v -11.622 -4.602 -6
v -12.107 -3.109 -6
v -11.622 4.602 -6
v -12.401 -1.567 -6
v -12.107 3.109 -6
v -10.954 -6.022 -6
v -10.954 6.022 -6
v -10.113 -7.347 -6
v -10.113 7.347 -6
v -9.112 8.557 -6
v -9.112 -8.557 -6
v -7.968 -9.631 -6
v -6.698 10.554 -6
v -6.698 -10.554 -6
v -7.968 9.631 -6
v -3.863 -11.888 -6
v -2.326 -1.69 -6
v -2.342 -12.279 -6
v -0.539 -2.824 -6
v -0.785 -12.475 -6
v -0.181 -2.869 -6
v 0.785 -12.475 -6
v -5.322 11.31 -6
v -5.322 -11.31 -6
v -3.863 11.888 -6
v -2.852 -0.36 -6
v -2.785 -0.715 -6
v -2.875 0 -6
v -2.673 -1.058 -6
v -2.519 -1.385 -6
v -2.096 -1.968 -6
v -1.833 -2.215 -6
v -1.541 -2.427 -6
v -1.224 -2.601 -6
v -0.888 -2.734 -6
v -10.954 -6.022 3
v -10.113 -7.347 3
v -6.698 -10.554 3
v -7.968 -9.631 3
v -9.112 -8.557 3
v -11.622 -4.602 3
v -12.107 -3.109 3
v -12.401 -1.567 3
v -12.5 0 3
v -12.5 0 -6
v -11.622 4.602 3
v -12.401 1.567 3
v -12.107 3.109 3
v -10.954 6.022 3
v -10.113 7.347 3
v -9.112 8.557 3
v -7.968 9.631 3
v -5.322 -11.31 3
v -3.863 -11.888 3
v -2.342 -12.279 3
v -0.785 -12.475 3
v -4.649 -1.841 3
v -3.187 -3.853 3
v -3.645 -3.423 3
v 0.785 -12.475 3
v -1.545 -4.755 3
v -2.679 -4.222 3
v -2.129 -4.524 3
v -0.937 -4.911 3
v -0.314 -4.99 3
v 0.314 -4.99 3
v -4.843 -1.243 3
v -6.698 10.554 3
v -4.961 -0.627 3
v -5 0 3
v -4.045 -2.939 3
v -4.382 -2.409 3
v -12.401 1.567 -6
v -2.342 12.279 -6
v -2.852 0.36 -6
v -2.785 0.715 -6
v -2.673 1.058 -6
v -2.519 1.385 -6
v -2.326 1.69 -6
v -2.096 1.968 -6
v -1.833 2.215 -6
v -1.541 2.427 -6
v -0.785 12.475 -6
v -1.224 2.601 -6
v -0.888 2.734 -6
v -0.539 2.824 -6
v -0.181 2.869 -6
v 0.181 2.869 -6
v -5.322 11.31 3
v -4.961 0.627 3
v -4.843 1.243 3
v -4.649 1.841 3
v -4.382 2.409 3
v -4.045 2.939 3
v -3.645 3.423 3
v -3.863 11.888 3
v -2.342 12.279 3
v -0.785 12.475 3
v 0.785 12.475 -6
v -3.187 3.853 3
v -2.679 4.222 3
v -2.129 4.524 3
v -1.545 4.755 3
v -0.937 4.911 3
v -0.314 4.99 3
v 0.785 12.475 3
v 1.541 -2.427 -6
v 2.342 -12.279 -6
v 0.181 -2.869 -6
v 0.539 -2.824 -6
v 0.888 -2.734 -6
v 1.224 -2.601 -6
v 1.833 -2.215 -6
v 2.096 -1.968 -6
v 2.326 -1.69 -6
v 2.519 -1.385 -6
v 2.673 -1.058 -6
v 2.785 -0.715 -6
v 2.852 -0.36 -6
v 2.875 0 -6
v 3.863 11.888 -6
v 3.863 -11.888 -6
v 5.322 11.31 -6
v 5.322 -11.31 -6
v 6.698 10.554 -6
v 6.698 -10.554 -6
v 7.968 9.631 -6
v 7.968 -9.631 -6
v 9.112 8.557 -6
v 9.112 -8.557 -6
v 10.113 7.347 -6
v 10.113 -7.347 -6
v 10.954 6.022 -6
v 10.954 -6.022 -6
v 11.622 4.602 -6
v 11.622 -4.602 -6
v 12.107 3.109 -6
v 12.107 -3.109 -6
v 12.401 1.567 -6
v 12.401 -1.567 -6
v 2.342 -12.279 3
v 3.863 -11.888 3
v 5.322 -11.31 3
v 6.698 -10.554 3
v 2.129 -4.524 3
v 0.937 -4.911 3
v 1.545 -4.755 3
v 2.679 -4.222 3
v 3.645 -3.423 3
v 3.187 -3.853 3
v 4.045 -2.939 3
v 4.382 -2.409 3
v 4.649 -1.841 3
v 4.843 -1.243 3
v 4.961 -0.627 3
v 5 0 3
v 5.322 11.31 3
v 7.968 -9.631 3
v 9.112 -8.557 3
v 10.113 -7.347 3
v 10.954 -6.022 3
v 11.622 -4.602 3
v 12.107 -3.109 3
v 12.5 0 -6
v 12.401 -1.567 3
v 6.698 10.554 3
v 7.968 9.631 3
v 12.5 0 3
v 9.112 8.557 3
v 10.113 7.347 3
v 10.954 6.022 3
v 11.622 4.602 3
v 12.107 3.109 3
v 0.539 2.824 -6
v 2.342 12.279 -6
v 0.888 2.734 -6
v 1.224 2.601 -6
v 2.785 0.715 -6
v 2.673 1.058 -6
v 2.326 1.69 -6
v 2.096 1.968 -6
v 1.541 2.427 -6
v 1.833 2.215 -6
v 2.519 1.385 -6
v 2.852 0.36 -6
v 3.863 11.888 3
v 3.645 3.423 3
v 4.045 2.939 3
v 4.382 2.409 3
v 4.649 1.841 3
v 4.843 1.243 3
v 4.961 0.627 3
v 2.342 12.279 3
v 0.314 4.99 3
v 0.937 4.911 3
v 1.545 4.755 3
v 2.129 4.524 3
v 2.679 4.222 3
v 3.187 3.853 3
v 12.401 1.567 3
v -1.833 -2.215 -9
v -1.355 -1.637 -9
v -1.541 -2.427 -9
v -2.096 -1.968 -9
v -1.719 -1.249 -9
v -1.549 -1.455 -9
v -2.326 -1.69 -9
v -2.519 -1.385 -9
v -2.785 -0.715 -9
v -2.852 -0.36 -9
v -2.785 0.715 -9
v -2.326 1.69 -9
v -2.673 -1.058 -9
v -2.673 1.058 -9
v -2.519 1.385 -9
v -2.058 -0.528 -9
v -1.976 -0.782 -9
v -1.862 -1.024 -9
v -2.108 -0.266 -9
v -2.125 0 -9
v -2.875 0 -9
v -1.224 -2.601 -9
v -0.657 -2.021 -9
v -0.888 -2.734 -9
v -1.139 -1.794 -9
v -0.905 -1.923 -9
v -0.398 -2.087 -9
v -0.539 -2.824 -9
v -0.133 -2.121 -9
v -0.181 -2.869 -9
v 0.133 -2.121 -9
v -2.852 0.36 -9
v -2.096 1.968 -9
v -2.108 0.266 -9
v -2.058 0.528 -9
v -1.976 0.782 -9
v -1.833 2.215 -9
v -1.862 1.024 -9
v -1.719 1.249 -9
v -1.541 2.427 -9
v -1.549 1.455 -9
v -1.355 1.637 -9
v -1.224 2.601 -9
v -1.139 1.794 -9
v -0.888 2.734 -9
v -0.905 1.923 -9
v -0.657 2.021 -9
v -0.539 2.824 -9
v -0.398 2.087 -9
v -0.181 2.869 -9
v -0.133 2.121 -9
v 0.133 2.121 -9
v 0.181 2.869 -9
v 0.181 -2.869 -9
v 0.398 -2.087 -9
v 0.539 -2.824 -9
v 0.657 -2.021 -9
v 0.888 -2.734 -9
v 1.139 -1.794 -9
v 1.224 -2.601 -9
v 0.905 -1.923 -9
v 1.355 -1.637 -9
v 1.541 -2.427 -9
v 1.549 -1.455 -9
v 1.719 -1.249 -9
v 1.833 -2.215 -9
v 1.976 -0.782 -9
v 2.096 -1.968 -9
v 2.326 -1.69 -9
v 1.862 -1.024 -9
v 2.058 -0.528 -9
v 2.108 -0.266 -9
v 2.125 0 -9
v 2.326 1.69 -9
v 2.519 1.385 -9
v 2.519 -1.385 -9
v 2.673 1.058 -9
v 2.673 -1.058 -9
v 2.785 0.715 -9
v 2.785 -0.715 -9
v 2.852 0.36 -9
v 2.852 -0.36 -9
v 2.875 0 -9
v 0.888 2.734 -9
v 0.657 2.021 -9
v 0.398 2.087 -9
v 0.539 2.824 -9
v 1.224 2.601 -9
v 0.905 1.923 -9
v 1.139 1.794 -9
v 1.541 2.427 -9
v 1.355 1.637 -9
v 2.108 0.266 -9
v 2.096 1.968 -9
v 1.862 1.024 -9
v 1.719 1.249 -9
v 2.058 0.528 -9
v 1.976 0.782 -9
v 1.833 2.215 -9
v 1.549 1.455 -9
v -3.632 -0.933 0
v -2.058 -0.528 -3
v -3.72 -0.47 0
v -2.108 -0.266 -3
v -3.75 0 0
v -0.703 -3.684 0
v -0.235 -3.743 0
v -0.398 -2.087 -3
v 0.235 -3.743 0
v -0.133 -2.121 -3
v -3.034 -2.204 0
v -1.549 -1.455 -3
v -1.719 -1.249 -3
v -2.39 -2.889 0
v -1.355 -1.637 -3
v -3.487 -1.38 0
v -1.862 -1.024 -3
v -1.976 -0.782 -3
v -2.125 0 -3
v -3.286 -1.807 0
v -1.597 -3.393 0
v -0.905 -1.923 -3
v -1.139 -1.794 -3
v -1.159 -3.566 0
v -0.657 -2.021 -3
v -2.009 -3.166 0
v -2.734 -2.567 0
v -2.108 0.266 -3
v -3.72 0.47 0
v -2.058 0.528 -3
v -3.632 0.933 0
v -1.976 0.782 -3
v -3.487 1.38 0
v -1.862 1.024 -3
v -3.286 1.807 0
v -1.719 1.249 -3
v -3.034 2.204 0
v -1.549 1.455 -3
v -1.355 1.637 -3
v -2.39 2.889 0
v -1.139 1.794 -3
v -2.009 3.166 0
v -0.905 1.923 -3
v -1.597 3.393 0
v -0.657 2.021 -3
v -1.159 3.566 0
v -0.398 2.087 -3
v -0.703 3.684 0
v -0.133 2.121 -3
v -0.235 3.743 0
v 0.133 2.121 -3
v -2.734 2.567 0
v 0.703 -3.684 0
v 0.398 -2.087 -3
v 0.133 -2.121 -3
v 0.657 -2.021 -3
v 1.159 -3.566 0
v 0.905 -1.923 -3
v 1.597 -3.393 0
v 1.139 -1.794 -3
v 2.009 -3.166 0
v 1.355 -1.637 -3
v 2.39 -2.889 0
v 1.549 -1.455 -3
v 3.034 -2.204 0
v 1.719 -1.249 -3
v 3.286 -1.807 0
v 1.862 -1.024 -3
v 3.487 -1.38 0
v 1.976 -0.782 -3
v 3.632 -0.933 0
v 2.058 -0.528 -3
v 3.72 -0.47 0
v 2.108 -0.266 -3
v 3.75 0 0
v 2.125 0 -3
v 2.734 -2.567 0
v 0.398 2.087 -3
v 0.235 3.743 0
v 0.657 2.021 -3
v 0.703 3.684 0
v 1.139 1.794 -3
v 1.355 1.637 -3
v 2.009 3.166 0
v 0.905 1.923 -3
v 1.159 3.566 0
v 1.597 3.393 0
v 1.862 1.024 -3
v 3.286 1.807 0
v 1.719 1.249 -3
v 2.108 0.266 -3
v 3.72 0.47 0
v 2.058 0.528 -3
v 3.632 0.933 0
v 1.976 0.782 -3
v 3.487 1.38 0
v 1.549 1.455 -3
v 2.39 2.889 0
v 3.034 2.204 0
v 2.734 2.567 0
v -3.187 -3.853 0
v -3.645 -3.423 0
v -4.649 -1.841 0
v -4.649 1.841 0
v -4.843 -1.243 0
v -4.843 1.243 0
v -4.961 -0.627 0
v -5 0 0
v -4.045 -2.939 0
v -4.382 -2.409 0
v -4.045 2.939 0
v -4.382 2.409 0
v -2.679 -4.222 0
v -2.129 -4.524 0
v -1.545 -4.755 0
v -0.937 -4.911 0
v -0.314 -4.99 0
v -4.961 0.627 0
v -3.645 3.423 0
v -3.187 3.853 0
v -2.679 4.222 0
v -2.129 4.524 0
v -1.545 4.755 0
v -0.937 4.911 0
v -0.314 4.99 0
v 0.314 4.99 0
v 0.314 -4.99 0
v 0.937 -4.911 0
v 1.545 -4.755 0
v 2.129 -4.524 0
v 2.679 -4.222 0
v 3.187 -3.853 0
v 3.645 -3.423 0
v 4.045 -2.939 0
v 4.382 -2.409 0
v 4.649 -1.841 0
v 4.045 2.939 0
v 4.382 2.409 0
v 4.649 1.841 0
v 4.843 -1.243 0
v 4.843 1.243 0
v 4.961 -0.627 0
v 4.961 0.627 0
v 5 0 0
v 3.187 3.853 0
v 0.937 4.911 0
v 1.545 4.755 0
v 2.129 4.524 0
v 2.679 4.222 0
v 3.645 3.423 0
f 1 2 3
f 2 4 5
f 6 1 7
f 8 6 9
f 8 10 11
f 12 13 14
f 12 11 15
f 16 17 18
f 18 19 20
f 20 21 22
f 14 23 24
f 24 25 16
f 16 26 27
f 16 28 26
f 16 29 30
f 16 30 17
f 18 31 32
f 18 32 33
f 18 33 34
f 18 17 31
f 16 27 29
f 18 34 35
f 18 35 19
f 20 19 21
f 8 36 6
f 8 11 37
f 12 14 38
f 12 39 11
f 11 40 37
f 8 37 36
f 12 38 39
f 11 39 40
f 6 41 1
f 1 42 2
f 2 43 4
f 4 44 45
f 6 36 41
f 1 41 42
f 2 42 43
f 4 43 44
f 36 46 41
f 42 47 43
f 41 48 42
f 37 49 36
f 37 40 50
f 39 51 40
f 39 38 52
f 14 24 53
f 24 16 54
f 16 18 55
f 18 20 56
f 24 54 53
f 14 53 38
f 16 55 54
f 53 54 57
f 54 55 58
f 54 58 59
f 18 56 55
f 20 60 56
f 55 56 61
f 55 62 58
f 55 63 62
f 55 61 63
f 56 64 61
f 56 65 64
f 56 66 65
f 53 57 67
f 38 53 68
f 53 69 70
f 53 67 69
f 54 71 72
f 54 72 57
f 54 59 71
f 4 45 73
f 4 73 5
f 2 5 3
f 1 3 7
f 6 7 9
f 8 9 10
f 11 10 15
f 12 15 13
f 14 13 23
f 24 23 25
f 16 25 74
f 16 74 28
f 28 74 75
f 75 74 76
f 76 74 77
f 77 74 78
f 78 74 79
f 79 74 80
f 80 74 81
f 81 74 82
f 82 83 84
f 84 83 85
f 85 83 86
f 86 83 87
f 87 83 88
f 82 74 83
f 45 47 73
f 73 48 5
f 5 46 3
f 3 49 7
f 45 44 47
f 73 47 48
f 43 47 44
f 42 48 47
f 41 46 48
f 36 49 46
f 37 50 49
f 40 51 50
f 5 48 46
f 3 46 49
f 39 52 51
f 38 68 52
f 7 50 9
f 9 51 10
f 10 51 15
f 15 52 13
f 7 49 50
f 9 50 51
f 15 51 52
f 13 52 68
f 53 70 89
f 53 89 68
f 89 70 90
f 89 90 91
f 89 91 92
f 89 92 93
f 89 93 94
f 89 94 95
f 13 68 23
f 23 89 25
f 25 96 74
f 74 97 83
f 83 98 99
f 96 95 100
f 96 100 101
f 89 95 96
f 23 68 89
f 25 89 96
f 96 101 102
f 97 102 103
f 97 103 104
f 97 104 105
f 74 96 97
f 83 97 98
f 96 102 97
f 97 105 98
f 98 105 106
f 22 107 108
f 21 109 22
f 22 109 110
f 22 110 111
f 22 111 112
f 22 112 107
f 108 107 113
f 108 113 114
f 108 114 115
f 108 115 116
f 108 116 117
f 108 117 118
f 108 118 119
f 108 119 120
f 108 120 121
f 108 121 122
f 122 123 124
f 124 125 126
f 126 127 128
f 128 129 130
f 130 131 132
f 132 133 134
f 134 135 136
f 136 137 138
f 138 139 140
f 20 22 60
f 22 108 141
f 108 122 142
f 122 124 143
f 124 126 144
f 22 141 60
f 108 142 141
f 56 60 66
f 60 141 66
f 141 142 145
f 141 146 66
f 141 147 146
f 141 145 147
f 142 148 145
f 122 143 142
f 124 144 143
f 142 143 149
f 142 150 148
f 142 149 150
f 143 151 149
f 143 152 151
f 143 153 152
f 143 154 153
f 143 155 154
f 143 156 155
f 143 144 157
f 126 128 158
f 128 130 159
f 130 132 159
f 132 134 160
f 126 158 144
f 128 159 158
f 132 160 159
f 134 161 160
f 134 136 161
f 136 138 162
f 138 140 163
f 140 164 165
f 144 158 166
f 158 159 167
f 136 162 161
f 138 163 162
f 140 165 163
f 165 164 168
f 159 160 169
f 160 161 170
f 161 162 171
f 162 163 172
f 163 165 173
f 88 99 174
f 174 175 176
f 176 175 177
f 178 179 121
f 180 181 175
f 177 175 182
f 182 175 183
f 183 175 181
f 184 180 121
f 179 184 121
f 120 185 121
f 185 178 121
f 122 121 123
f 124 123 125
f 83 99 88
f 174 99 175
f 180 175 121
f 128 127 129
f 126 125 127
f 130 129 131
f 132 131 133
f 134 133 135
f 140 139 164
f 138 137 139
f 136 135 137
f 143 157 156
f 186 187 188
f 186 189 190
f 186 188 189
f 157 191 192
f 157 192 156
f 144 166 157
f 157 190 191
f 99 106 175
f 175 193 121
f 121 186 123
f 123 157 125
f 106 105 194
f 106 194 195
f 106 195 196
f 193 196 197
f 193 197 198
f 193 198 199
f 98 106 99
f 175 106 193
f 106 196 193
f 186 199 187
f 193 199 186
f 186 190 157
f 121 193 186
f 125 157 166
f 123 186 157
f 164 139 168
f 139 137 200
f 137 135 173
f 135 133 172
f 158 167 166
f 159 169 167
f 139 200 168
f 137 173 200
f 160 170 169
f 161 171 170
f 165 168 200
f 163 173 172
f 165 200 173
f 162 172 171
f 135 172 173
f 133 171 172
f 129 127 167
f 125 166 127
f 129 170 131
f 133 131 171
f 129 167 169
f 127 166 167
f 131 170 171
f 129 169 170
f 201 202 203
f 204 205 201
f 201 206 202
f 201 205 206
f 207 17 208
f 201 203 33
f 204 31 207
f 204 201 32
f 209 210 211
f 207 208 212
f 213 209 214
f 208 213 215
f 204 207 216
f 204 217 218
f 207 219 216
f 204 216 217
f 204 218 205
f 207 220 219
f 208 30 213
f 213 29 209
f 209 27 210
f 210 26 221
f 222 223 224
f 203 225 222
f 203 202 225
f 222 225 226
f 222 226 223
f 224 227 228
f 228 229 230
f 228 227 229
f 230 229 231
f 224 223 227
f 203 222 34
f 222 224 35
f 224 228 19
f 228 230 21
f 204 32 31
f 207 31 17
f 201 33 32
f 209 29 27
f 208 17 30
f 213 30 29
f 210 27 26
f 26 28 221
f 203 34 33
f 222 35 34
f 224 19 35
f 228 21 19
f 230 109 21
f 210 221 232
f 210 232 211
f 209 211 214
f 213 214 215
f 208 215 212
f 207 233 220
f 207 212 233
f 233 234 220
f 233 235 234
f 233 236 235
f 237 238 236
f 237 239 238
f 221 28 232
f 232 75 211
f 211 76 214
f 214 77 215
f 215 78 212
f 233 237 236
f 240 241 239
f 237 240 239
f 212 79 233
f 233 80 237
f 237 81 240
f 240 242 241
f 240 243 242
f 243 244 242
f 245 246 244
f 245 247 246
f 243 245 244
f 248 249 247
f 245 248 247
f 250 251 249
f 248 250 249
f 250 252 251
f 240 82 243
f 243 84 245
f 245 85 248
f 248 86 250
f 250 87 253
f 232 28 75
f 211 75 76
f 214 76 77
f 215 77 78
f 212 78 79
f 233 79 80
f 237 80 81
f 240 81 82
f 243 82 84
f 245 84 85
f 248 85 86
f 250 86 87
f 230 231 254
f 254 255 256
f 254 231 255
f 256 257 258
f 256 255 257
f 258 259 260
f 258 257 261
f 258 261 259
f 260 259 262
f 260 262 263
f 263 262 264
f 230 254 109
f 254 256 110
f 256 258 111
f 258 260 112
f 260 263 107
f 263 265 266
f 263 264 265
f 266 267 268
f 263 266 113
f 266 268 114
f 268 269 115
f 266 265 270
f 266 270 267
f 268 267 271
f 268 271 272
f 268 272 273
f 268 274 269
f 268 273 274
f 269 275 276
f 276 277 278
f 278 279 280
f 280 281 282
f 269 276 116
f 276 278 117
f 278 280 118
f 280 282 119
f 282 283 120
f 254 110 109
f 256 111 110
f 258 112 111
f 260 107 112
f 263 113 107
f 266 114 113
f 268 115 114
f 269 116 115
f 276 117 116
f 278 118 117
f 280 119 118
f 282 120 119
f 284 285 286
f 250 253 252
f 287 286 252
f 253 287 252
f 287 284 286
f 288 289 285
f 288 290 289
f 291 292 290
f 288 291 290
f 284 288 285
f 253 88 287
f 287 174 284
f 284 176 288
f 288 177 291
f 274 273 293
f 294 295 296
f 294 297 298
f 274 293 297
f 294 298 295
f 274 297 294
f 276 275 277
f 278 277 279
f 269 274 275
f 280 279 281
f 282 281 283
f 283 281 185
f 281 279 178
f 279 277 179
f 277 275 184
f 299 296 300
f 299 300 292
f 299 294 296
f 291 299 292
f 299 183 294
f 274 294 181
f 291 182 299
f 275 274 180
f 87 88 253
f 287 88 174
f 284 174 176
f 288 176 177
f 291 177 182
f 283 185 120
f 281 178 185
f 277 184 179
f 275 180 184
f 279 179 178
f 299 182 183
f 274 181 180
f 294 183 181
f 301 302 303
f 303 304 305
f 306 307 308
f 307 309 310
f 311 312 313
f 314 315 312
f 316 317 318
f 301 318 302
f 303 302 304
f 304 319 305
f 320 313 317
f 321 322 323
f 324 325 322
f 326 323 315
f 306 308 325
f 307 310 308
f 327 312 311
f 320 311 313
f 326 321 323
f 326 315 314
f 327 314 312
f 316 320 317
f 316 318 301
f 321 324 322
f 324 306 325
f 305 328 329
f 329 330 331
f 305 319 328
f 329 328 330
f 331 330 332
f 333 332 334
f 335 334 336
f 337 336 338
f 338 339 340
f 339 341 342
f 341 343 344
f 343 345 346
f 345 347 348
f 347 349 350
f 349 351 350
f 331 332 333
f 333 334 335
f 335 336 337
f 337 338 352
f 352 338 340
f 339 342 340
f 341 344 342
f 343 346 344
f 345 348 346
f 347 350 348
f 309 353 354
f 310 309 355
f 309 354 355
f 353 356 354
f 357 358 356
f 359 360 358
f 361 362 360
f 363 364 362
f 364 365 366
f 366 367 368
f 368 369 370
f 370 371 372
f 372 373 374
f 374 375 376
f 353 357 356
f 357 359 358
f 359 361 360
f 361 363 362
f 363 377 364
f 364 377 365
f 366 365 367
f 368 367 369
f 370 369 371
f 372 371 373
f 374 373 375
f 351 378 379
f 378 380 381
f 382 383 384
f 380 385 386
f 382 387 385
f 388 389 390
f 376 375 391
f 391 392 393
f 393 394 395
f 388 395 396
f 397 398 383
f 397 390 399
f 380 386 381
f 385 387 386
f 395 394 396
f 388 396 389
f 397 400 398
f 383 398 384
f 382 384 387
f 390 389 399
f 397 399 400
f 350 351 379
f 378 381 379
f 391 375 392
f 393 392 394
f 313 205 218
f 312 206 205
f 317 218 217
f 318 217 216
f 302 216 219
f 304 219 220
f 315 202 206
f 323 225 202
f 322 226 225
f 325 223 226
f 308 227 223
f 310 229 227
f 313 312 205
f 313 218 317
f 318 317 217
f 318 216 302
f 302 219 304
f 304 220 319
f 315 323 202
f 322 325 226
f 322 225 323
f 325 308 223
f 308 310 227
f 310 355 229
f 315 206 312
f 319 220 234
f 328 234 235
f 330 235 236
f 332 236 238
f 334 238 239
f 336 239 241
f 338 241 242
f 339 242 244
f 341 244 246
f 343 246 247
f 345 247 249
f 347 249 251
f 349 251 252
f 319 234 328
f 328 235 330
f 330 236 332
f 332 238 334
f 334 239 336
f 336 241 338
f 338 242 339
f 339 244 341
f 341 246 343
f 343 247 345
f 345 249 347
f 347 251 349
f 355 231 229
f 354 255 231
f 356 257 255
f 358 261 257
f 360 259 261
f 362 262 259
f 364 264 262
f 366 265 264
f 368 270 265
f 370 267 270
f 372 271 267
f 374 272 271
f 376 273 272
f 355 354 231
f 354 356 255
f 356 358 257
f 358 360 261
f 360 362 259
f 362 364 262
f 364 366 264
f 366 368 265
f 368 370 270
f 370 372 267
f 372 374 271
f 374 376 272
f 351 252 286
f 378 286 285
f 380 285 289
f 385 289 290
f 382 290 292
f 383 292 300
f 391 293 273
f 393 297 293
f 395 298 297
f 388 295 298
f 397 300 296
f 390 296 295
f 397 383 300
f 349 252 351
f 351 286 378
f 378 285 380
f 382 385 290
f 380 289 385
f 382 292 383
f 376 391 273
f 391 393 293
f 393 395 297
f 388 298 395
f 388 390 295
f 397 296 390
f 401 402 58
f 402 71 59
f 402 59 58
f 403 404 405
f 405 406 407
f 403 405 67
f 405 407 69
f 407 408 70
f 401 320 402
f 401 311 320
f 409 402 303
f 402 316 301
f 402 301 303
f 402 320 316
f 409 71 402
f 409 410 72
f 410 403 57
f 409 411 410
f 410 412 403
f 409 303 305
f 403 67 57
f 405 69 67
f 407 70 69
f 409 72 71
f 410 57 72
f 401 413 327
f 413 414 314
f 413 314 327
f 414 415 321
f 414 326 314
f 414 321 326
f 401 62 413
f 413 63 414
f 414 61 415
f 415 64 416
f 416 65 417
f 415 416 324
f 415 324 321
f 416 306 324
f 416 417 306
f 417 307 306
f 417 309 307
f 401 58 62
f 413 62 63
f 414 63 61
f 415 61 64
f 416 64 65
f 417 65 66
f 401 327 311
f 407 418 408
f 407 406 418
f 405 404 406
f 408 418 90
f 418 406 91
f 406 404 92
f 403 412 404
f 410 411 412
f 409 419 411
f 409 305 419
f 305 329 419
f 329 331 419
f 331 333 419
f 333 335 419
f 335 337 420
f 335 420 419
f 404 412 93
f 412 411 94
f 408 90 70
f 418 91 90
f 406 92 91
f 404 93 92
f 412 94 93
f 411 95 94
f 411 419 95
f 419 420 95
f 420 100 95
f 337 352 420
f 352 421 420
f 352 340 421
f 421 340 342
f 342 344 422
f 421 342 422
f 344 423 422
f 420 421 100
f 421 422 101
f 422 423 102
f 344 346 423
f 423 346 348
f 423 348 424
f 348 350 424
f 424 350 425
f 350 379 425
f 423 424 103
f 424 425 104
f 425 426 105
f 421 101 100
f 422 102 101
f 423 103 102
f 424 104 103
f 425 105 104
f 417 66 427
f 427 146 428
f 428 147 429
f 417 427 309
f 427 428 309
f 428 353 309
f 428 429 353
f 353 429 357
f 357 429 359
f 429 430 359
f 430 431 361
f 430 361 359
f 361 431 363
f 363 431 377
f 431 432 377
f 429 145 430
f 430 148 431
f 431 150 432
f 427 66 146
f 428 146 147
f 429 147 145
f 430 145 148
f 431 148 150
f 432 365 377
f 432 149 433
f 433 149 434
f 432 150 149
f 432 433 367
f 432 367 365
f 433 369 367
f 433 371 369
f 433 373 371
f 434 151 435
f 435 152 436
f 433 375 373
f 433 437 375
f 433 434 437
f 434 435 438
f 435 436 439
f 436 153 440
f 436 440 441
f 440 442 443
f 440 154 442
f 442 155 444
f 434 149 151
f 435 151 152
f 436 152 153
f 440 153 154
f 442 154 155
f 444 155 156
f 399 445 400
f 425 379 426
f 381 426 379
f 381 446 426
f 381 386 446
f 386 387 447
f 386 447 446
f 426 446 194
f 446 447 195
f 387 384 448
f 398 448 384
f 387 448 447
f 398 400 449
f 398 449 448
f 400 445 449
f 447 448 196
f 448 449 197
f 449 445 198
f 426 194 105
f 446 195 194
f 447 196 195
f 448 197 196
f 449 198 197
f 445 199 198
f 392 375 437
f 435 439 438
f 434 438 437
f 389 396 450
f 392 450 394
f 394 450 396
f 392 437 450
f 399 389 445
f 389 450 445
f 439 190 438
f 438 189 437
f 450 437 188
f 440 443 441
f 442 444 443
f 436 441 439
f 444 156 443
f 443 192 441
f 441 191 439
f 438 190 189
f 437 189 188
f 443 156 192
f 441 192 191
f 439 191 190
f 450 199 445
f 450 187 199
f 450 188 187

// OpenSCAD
$fn = 50;

difference() {
	union() {
		translate(v = [0, 0, -6.0]) {
			cylinder(h = 9, r = 12.5);
		}
		#translate(v = [0, 0, -9.0]) {
			cylinder(h = 9, r = 2.875);
		}
	}
	union() {
		translate(v = [0, 0, 0]) {
			rotate(a = [0, 0, 0]) {
				difference() {
					union() {
						translate(v = [0, 0, -9.0]) {
							cylinder(h = 9, r = 2.0);
						}
						translate(v = [0, 0, -3]) {
							cylinder(h = 3, r1 = 2.125, r2 = 3.75);
						}
						translate(v = [0, 0, -9.0]) {
							cylinder(h = 9, r = 2.125);
						}
						translate(v = [0, 0, -9.0]) {
							cylinder(h = 9, r = 2.0);
						}
					}
					union();
				}
			}
		}
		#cylinder(h = 3, r = 5.0);
	}
}
